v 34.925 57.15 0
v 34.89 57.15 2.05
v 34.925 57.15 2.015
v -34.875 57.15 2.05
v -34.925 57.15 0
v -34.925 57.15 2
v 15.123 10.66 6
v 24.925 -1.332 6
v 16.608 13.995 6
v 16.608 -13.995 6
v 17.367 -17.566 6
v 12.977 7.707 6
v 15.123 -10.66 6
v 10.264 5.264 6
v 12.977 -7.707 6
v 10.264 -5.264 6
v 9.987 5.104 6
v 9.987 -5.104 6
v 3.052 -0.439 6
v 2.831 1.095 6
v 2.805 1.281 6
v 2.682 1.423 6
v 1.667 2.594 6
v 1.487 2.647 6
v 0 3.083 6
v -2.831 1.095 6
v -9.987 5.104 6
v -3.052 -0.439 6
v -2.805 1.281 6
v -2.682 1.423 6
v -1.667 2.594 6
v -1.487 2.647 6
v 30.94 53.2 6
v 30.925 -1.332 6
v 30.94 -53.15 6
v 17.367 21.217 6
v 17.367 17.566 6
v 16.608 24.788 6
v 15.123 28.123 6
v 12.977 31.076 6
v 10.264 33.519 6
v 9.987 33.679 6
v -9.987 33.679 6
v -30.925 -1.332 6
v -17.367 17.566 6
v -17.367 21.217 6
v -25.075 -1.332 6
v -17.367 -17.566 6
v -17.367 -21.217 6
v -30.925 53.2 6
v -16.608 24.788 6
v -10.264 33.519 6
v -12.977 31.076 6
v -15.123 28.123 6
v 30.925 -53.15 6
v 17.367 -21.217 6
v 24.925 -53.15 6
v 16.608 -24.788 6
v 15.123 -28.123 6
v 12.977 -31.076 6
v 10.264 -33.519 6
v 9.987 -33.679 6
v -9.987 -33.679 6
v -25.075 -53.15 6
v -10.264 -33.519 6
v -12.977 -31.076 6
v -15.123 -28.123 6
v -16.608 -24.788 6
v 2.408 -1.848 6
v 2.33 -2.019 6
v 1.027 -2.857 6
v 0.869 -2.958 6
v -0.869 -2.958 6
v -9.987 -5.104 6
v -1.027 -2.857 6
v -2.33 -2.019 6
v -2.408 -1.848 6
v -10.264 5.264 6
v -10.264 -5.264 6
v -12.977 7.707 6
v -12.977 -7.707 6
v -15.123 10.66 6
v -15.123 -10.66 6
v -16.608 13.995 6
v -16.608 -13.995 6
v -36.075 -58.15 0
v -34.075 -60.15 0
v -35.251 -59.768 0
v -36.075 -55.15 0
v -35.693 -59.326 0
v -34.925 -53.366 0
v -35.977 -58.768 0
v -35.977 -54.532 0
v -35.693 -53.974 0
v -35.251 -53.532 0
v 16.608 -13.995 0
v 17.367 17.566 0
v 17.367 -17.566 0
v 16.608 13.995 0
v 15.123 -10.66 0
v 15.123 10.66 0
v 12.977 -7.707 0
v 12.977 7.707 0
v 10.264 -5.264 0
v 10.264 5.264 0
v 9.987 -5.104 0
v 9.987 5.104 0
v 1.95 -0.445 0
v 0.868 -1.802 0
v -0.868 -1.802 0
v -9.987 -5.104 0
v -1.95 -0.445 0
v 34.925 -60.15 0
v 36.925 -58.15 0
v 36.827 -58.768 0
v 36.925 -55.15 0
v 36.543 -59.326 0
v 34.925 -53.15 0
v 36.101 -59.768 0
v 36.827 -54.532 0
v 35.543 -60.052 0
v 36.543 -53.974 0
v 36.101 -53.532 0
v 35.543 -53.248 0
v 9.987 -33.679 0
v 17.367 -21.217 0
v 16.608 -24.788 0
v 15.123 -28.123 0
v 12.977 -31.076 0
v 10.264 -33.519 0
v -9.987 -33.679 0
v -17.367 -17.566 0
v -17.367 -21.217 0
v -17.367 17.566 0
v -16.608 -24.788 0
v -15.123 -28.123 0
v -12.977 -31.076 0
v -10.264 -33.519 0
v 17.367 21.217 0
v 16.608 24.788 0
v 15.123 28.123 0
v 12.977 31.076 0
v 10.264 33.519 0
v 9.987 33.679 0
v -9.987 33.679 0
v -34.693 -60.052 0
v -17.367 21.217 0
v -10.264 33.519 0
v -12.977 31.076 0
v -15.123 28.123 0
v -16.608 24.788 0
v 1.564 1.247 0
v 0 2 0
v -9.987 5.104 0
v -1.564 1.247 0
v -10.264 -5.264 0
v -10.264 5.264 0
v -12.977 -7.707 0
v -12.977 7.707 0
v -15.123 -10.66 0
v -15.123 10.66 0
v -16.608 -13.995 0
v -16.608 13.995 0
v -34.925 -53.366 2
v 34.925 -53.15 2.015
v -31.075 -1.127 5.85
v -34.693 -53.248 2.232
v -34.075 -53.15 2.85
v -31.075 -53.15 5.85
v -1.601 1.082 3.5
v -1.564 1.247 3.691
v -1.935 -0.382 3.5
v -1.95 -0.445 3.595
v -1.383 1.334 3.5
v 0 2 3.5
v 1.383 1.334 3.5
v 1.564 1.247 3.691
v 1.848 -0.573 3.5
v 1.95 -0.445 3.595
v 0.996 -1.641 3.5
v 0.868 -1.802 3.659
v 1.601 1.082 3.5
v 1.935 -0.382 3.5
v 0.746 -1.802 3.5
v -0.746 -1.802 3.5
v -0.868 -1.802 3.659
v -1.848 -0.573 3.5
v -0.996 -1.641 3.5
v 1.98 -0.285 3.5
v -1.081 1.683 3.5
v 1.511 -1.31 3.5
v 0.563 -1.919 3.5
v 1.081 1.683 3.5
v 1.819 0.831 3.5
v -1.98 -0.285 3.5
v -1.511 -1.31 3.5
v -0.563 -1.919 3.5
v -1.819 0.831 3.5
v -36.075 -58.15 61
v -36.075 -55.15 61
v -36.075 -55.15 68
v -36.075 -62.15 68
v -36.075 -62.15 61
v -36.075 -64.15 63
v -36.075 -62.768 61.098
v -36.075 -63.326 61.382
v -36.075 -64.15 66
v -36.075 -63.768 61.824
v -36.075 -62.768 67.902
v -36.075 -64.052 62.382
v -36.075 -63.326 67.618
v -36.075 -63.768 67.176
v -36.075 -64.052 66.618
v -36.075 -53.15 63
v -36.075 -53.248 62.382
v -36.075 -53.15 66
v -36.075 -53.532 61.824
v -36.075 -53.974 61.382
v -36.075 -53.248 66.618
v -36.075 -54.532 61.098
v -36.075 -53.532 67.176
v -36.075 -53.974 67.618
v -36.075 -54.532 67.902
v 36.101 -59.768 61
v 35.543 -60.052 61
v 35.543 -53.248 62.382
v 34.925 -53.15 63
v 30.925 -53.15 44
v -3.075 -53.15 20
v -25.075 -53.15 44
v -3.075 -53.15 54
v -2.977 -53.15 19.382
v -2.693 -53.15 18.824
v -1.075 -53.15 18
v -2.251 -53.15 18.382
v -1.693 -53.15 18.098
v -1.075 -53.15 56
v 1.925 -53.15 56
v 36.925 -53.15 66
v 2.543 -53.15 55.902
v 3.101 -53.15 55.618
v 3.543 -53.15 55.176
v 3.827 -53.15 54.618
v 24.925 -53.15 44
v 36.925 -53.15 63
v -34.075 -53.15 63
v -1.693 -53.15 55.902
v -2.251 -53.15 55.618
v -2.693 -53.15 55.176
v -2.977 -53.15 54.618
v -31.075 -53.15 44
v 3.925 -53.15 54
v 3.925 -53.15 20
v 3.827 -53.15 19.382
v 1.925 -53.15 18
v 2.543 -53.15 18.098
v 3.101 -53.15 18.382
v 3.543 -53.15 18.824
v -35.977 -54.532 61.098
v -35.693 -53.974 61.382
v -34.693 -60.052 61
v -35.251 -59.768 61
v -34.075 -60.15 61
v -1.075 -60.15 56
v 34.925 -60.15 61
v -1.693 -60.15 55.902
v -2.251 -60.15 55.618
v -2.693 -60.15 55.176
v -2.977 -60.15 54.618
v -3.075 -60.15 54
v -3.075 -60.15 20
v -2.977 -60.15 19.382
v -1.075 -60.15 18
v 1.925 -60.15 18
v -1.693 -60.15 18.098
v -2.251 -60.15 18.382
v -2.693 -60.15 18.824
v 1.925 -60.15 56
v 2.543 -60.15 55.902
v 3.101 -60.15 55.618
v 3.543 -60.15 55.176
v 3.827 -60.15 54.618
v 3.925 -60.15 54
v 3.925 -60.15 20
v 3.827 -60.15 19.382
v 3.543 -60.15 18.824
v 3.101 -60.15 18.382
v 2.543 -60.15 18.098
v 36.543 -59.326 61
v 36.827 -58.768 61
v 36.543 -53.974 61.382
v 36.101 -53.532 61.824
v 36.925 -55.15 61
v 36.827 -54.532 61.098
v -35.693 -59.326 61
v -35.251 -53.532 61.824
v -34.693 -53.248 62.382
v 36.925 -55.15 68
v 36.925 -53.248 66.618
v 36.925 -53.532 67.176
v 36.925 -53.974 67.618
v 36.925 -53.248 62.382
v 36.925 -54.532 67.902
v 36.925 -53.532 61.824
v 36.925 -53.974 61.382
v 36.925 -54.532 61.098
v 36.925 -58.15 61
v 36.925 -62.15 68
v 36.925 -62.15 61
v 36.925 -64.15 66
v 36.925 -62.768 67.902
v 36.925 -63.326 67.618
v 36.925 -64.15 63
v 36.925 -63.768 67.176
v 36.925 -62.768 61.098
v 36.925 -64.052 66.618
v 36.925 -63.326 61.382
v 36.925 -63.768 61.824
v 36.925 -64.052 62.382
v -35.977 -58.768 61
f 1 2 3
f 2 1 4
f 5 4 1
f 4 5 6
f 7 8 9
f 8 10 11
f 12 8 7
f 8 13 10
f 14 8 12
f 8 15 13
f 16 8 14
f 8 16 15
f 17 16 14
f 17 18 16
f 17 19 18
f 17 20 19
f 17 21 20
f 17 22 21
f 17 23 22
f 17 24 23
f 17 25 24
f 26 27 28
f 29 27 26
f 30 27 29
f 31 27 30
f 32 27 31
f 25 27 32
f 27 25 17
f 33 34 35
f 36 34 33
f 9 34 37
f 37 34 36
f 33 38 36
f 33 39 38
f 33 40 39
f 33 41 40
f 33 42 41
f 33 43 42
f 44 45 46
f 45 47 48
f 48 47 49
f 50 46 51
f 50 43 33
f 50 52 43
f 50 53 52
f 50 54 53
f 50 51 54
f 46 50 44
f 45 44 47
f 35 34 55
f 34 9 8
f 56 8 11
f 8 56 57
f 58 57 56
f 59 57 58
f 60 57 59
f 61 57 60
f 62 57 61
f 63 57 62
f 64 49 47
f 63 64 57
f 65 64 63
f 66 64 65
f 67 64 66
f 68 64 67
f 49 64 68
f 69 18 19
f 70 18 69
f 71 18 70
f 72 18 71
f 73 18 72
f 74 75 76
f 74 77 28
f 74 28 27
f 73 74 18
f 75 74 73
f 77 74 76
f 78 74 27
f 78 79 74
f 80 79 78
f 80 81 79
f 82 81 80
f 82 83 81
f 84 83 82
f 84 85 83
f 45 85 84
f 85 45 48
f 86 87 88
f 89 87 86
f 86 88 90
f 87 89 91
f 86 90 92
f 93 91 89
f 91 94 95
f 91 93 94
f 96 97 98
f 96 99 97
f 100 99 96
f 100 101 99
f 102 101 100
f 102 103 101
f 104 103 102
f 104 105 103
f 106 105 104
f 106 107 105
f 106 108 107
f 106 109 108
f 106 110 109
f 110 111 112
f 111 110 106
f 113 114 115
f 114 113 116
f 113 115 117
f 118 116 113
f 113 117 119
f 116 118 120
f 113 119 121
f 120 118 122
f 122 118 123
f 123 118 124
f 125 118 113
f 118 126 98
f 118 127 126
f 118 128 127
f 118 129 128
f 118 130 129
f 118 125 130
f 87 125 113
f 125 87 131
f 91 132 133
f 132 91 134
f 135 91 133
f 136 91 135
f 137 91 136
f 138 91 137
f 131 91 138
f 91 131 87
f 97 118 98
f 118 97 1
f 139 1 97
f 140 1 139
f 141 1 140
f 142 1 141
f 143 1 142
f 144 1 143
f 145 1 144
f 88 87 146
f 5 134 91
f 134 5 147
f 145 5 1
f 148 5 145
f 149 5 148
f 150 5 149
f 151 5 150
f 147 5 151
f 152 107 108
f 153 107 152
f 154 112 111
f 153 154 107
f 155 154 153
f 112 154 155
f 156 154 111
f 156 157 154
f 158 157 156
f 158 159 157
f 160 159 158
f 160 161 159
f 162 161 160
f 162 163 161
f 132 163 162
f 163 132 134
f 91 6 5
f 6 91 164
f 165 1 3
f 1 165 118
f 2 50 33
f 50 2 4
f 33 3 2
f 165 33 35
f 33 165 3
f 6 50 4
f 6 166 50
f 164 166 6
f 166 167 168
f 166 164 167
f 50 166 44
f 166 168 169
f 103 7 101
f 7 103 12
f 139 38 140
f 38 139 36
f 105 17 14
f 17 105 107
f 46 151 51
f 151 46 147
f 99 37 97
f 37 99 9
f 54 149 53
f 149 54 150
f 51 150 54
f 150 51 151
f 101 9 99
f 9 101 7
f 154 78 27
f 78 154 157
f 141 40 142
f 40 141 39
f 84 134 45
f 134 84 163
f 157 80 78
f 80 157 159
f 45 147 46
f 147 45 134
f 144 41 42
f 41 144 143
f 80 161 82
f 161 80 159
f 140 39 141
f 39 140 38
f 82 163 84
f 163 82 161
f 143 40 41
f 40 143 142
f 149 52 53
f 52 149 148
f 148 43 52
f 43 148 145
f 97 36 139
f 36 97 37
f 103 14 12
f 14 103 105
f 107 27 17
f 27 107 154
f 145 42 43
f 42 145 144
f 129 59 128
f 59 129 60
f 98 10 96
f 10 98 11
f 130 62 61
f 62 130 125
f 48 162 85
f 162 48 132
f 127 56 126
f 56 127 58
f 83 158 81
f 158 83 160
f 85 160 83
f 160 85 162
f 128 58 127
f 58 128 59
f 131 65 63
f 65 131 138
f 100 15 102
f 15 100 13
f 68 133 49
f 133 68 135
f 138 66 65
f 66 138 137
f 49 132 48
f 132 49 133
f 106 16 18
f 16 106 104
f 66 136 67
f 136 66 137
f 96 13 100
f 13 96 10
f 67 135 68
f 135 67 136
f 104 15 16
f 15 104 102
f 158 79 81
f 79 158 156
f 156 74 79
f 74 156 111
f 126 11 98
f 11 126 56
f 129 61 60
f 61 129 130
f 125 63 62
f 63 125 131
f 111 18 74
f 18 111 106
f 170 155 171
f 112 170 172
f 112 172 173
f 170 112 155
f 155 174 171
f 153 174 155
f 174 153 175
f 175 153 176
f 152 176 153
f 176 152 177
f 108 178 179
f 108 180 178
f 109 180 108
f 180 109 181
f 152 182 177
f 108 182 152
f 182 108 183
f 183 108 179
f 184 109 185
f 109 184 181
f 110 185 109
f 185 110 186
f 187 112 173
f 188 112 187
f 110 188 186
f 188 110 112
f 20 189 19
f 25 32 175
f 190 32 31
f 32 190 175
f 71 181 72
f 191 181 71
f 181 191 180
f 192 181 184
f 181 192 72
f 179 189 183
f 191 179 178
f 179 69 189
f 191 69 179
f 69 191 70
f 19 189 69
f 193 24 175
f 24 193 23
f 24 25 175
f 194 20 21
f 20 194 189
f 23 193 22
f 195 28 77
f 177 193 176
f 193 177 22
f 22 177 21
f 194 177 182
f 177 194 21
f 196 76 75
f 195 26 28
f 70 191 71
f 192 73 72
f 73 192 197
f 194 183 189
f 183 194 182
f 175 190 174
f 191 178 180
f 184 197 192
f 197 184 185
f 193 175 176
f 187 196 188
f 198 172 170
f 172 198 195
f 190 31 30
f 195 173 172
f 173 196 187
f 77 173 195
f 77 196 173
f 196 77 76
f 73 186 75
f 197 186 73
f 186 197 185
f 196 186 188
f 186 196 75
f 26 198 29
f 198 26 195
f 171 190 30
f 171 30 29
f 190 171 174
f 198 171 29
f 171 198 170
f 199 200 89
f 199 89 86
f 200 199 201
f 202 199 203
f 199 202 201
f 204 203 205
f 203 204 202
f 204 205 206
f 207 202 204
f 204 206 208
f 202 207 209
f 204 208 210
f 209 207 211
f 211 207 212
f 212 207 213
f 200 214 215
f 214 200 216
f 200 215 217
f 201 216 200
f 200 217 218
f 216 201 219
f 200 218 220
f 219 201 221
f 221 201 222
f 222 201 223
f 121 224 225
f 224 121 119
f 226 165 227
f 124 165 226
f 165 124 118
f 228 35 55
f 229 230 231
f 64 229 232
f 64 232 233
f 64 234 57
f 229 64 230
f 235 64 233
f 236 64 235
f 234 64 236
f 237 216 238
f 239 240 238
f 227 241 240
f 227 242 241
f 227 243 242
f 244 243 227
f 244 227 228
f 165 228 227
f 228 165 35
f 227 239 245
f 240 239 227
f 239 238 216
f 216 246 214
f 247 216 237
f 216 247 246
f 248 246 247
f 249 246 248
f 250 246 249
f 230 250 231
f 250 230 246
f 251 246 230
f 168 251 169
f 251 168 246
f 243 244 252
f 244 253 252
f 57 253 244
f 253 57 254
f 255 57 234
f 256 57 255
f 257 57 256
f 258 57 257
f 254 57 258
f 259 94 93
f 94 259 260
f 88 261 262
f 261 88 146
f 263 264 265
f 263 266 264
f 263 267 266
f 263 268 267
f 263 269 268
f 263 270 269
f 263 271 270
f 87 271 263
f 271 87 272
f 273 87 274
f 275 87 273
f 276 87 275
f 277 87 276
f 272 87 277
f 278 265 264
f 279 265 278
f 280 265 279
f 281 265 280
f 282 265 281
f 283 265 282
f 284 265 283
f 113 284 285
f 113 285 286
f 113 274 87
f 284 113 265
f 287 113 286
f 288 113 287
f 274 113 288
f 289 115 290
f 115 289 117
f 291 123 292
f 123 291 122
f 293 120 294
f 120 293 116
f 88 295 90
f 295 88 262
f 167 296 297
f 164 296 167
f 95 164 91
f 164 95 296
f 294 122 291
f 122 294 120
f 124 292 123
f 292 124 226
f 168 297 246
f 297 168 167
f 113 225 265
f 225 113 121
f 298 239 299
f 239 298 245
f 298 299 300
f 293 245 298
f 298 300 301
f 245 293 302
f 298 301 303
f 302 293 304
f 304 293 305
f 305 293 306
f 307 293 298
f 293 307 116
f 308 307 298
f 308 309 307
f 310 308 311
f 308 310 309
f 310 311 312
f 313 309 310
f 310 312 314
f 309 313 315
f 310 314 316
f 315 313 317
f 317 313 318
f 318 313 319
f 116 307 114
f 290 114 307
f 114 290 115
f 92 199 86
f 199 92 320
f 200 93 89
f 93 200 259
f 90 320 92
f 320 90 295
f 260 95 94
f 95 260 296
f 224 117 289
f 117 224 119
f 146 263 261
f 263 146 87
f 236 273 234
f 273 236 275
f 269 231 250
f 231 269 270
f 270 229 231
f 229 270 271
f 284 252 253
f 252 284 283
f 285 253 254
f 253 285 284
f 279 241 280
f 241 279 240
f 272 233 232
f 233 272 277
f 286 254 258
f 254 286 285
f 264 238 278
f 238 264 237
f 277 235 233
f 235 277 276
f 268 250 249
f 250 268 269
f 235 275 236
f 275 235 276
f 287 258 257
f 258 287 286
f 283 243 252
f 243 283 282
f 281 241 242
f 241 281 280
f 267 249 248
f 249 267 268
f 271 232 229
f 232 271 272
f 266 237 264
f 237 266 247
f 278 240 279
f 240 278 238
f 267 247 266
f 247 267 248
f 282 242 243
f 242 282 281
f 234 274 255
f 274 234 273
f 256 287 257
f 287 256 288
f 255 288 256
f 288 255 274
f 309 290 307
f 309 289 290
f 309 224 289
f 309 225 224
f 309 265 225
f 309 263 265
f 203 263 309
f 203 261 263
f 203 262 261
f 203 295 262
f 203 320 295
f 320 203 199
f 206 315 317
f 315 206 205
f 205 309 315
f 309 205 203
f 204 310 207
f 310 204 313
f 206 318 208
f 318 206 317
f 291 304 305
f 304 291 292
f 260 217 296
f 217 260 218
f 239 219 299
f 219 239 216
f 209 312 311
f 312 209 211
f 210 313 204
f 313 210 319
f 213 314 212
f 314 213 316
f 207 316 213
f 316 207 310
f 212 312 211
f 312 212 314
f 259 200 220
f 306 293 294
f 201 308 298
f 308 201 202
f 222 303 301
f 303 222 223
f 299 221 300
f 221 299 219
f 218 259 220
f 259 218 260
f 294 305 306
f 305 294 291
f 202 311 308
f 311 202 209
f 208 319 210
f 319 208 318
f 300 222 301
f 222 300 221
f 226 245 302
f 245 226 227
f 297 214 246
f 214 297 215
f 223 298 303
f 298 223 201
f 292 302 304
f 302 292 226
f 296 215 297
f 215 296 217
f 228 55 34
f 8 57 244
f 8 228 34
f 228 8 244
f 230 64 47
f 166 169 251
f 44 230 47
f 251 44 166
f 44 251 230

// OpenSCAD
// file: ../../../../../basics/rounded-edges/rounded-cube/rounded-cube.scad
/**
 *
 *  some parts of this software were inspired by
 *
 * 	     http://www.thingiverse.com/thing:9347
 *
 */

/**
 * makes a rounded cube
 */
module roundedCube(cornerRadius=4,
				   cubeCentered=false,
				   sides=30,
				   sidesOnly=false,
				   size=[20,20,2])
{
    $fn=sides;

    x = size[0] - cornerRadius/2;
    y = size[1] - cornerRadius/2;
    z = size[2];

    minkowski(size, cornerRadius)
    {
        cube(size=[x,y,z], center=cubeCentered);

        if(sidesOnly)
        {
            cylinder(r=cornerRadius);
        }
        else
        {
            sphere(r=cornerRadius);
        }
    };
}
// main file
use <../../../power-outltet-cover.scad>

powerOutletCover(chargerStand = true);
